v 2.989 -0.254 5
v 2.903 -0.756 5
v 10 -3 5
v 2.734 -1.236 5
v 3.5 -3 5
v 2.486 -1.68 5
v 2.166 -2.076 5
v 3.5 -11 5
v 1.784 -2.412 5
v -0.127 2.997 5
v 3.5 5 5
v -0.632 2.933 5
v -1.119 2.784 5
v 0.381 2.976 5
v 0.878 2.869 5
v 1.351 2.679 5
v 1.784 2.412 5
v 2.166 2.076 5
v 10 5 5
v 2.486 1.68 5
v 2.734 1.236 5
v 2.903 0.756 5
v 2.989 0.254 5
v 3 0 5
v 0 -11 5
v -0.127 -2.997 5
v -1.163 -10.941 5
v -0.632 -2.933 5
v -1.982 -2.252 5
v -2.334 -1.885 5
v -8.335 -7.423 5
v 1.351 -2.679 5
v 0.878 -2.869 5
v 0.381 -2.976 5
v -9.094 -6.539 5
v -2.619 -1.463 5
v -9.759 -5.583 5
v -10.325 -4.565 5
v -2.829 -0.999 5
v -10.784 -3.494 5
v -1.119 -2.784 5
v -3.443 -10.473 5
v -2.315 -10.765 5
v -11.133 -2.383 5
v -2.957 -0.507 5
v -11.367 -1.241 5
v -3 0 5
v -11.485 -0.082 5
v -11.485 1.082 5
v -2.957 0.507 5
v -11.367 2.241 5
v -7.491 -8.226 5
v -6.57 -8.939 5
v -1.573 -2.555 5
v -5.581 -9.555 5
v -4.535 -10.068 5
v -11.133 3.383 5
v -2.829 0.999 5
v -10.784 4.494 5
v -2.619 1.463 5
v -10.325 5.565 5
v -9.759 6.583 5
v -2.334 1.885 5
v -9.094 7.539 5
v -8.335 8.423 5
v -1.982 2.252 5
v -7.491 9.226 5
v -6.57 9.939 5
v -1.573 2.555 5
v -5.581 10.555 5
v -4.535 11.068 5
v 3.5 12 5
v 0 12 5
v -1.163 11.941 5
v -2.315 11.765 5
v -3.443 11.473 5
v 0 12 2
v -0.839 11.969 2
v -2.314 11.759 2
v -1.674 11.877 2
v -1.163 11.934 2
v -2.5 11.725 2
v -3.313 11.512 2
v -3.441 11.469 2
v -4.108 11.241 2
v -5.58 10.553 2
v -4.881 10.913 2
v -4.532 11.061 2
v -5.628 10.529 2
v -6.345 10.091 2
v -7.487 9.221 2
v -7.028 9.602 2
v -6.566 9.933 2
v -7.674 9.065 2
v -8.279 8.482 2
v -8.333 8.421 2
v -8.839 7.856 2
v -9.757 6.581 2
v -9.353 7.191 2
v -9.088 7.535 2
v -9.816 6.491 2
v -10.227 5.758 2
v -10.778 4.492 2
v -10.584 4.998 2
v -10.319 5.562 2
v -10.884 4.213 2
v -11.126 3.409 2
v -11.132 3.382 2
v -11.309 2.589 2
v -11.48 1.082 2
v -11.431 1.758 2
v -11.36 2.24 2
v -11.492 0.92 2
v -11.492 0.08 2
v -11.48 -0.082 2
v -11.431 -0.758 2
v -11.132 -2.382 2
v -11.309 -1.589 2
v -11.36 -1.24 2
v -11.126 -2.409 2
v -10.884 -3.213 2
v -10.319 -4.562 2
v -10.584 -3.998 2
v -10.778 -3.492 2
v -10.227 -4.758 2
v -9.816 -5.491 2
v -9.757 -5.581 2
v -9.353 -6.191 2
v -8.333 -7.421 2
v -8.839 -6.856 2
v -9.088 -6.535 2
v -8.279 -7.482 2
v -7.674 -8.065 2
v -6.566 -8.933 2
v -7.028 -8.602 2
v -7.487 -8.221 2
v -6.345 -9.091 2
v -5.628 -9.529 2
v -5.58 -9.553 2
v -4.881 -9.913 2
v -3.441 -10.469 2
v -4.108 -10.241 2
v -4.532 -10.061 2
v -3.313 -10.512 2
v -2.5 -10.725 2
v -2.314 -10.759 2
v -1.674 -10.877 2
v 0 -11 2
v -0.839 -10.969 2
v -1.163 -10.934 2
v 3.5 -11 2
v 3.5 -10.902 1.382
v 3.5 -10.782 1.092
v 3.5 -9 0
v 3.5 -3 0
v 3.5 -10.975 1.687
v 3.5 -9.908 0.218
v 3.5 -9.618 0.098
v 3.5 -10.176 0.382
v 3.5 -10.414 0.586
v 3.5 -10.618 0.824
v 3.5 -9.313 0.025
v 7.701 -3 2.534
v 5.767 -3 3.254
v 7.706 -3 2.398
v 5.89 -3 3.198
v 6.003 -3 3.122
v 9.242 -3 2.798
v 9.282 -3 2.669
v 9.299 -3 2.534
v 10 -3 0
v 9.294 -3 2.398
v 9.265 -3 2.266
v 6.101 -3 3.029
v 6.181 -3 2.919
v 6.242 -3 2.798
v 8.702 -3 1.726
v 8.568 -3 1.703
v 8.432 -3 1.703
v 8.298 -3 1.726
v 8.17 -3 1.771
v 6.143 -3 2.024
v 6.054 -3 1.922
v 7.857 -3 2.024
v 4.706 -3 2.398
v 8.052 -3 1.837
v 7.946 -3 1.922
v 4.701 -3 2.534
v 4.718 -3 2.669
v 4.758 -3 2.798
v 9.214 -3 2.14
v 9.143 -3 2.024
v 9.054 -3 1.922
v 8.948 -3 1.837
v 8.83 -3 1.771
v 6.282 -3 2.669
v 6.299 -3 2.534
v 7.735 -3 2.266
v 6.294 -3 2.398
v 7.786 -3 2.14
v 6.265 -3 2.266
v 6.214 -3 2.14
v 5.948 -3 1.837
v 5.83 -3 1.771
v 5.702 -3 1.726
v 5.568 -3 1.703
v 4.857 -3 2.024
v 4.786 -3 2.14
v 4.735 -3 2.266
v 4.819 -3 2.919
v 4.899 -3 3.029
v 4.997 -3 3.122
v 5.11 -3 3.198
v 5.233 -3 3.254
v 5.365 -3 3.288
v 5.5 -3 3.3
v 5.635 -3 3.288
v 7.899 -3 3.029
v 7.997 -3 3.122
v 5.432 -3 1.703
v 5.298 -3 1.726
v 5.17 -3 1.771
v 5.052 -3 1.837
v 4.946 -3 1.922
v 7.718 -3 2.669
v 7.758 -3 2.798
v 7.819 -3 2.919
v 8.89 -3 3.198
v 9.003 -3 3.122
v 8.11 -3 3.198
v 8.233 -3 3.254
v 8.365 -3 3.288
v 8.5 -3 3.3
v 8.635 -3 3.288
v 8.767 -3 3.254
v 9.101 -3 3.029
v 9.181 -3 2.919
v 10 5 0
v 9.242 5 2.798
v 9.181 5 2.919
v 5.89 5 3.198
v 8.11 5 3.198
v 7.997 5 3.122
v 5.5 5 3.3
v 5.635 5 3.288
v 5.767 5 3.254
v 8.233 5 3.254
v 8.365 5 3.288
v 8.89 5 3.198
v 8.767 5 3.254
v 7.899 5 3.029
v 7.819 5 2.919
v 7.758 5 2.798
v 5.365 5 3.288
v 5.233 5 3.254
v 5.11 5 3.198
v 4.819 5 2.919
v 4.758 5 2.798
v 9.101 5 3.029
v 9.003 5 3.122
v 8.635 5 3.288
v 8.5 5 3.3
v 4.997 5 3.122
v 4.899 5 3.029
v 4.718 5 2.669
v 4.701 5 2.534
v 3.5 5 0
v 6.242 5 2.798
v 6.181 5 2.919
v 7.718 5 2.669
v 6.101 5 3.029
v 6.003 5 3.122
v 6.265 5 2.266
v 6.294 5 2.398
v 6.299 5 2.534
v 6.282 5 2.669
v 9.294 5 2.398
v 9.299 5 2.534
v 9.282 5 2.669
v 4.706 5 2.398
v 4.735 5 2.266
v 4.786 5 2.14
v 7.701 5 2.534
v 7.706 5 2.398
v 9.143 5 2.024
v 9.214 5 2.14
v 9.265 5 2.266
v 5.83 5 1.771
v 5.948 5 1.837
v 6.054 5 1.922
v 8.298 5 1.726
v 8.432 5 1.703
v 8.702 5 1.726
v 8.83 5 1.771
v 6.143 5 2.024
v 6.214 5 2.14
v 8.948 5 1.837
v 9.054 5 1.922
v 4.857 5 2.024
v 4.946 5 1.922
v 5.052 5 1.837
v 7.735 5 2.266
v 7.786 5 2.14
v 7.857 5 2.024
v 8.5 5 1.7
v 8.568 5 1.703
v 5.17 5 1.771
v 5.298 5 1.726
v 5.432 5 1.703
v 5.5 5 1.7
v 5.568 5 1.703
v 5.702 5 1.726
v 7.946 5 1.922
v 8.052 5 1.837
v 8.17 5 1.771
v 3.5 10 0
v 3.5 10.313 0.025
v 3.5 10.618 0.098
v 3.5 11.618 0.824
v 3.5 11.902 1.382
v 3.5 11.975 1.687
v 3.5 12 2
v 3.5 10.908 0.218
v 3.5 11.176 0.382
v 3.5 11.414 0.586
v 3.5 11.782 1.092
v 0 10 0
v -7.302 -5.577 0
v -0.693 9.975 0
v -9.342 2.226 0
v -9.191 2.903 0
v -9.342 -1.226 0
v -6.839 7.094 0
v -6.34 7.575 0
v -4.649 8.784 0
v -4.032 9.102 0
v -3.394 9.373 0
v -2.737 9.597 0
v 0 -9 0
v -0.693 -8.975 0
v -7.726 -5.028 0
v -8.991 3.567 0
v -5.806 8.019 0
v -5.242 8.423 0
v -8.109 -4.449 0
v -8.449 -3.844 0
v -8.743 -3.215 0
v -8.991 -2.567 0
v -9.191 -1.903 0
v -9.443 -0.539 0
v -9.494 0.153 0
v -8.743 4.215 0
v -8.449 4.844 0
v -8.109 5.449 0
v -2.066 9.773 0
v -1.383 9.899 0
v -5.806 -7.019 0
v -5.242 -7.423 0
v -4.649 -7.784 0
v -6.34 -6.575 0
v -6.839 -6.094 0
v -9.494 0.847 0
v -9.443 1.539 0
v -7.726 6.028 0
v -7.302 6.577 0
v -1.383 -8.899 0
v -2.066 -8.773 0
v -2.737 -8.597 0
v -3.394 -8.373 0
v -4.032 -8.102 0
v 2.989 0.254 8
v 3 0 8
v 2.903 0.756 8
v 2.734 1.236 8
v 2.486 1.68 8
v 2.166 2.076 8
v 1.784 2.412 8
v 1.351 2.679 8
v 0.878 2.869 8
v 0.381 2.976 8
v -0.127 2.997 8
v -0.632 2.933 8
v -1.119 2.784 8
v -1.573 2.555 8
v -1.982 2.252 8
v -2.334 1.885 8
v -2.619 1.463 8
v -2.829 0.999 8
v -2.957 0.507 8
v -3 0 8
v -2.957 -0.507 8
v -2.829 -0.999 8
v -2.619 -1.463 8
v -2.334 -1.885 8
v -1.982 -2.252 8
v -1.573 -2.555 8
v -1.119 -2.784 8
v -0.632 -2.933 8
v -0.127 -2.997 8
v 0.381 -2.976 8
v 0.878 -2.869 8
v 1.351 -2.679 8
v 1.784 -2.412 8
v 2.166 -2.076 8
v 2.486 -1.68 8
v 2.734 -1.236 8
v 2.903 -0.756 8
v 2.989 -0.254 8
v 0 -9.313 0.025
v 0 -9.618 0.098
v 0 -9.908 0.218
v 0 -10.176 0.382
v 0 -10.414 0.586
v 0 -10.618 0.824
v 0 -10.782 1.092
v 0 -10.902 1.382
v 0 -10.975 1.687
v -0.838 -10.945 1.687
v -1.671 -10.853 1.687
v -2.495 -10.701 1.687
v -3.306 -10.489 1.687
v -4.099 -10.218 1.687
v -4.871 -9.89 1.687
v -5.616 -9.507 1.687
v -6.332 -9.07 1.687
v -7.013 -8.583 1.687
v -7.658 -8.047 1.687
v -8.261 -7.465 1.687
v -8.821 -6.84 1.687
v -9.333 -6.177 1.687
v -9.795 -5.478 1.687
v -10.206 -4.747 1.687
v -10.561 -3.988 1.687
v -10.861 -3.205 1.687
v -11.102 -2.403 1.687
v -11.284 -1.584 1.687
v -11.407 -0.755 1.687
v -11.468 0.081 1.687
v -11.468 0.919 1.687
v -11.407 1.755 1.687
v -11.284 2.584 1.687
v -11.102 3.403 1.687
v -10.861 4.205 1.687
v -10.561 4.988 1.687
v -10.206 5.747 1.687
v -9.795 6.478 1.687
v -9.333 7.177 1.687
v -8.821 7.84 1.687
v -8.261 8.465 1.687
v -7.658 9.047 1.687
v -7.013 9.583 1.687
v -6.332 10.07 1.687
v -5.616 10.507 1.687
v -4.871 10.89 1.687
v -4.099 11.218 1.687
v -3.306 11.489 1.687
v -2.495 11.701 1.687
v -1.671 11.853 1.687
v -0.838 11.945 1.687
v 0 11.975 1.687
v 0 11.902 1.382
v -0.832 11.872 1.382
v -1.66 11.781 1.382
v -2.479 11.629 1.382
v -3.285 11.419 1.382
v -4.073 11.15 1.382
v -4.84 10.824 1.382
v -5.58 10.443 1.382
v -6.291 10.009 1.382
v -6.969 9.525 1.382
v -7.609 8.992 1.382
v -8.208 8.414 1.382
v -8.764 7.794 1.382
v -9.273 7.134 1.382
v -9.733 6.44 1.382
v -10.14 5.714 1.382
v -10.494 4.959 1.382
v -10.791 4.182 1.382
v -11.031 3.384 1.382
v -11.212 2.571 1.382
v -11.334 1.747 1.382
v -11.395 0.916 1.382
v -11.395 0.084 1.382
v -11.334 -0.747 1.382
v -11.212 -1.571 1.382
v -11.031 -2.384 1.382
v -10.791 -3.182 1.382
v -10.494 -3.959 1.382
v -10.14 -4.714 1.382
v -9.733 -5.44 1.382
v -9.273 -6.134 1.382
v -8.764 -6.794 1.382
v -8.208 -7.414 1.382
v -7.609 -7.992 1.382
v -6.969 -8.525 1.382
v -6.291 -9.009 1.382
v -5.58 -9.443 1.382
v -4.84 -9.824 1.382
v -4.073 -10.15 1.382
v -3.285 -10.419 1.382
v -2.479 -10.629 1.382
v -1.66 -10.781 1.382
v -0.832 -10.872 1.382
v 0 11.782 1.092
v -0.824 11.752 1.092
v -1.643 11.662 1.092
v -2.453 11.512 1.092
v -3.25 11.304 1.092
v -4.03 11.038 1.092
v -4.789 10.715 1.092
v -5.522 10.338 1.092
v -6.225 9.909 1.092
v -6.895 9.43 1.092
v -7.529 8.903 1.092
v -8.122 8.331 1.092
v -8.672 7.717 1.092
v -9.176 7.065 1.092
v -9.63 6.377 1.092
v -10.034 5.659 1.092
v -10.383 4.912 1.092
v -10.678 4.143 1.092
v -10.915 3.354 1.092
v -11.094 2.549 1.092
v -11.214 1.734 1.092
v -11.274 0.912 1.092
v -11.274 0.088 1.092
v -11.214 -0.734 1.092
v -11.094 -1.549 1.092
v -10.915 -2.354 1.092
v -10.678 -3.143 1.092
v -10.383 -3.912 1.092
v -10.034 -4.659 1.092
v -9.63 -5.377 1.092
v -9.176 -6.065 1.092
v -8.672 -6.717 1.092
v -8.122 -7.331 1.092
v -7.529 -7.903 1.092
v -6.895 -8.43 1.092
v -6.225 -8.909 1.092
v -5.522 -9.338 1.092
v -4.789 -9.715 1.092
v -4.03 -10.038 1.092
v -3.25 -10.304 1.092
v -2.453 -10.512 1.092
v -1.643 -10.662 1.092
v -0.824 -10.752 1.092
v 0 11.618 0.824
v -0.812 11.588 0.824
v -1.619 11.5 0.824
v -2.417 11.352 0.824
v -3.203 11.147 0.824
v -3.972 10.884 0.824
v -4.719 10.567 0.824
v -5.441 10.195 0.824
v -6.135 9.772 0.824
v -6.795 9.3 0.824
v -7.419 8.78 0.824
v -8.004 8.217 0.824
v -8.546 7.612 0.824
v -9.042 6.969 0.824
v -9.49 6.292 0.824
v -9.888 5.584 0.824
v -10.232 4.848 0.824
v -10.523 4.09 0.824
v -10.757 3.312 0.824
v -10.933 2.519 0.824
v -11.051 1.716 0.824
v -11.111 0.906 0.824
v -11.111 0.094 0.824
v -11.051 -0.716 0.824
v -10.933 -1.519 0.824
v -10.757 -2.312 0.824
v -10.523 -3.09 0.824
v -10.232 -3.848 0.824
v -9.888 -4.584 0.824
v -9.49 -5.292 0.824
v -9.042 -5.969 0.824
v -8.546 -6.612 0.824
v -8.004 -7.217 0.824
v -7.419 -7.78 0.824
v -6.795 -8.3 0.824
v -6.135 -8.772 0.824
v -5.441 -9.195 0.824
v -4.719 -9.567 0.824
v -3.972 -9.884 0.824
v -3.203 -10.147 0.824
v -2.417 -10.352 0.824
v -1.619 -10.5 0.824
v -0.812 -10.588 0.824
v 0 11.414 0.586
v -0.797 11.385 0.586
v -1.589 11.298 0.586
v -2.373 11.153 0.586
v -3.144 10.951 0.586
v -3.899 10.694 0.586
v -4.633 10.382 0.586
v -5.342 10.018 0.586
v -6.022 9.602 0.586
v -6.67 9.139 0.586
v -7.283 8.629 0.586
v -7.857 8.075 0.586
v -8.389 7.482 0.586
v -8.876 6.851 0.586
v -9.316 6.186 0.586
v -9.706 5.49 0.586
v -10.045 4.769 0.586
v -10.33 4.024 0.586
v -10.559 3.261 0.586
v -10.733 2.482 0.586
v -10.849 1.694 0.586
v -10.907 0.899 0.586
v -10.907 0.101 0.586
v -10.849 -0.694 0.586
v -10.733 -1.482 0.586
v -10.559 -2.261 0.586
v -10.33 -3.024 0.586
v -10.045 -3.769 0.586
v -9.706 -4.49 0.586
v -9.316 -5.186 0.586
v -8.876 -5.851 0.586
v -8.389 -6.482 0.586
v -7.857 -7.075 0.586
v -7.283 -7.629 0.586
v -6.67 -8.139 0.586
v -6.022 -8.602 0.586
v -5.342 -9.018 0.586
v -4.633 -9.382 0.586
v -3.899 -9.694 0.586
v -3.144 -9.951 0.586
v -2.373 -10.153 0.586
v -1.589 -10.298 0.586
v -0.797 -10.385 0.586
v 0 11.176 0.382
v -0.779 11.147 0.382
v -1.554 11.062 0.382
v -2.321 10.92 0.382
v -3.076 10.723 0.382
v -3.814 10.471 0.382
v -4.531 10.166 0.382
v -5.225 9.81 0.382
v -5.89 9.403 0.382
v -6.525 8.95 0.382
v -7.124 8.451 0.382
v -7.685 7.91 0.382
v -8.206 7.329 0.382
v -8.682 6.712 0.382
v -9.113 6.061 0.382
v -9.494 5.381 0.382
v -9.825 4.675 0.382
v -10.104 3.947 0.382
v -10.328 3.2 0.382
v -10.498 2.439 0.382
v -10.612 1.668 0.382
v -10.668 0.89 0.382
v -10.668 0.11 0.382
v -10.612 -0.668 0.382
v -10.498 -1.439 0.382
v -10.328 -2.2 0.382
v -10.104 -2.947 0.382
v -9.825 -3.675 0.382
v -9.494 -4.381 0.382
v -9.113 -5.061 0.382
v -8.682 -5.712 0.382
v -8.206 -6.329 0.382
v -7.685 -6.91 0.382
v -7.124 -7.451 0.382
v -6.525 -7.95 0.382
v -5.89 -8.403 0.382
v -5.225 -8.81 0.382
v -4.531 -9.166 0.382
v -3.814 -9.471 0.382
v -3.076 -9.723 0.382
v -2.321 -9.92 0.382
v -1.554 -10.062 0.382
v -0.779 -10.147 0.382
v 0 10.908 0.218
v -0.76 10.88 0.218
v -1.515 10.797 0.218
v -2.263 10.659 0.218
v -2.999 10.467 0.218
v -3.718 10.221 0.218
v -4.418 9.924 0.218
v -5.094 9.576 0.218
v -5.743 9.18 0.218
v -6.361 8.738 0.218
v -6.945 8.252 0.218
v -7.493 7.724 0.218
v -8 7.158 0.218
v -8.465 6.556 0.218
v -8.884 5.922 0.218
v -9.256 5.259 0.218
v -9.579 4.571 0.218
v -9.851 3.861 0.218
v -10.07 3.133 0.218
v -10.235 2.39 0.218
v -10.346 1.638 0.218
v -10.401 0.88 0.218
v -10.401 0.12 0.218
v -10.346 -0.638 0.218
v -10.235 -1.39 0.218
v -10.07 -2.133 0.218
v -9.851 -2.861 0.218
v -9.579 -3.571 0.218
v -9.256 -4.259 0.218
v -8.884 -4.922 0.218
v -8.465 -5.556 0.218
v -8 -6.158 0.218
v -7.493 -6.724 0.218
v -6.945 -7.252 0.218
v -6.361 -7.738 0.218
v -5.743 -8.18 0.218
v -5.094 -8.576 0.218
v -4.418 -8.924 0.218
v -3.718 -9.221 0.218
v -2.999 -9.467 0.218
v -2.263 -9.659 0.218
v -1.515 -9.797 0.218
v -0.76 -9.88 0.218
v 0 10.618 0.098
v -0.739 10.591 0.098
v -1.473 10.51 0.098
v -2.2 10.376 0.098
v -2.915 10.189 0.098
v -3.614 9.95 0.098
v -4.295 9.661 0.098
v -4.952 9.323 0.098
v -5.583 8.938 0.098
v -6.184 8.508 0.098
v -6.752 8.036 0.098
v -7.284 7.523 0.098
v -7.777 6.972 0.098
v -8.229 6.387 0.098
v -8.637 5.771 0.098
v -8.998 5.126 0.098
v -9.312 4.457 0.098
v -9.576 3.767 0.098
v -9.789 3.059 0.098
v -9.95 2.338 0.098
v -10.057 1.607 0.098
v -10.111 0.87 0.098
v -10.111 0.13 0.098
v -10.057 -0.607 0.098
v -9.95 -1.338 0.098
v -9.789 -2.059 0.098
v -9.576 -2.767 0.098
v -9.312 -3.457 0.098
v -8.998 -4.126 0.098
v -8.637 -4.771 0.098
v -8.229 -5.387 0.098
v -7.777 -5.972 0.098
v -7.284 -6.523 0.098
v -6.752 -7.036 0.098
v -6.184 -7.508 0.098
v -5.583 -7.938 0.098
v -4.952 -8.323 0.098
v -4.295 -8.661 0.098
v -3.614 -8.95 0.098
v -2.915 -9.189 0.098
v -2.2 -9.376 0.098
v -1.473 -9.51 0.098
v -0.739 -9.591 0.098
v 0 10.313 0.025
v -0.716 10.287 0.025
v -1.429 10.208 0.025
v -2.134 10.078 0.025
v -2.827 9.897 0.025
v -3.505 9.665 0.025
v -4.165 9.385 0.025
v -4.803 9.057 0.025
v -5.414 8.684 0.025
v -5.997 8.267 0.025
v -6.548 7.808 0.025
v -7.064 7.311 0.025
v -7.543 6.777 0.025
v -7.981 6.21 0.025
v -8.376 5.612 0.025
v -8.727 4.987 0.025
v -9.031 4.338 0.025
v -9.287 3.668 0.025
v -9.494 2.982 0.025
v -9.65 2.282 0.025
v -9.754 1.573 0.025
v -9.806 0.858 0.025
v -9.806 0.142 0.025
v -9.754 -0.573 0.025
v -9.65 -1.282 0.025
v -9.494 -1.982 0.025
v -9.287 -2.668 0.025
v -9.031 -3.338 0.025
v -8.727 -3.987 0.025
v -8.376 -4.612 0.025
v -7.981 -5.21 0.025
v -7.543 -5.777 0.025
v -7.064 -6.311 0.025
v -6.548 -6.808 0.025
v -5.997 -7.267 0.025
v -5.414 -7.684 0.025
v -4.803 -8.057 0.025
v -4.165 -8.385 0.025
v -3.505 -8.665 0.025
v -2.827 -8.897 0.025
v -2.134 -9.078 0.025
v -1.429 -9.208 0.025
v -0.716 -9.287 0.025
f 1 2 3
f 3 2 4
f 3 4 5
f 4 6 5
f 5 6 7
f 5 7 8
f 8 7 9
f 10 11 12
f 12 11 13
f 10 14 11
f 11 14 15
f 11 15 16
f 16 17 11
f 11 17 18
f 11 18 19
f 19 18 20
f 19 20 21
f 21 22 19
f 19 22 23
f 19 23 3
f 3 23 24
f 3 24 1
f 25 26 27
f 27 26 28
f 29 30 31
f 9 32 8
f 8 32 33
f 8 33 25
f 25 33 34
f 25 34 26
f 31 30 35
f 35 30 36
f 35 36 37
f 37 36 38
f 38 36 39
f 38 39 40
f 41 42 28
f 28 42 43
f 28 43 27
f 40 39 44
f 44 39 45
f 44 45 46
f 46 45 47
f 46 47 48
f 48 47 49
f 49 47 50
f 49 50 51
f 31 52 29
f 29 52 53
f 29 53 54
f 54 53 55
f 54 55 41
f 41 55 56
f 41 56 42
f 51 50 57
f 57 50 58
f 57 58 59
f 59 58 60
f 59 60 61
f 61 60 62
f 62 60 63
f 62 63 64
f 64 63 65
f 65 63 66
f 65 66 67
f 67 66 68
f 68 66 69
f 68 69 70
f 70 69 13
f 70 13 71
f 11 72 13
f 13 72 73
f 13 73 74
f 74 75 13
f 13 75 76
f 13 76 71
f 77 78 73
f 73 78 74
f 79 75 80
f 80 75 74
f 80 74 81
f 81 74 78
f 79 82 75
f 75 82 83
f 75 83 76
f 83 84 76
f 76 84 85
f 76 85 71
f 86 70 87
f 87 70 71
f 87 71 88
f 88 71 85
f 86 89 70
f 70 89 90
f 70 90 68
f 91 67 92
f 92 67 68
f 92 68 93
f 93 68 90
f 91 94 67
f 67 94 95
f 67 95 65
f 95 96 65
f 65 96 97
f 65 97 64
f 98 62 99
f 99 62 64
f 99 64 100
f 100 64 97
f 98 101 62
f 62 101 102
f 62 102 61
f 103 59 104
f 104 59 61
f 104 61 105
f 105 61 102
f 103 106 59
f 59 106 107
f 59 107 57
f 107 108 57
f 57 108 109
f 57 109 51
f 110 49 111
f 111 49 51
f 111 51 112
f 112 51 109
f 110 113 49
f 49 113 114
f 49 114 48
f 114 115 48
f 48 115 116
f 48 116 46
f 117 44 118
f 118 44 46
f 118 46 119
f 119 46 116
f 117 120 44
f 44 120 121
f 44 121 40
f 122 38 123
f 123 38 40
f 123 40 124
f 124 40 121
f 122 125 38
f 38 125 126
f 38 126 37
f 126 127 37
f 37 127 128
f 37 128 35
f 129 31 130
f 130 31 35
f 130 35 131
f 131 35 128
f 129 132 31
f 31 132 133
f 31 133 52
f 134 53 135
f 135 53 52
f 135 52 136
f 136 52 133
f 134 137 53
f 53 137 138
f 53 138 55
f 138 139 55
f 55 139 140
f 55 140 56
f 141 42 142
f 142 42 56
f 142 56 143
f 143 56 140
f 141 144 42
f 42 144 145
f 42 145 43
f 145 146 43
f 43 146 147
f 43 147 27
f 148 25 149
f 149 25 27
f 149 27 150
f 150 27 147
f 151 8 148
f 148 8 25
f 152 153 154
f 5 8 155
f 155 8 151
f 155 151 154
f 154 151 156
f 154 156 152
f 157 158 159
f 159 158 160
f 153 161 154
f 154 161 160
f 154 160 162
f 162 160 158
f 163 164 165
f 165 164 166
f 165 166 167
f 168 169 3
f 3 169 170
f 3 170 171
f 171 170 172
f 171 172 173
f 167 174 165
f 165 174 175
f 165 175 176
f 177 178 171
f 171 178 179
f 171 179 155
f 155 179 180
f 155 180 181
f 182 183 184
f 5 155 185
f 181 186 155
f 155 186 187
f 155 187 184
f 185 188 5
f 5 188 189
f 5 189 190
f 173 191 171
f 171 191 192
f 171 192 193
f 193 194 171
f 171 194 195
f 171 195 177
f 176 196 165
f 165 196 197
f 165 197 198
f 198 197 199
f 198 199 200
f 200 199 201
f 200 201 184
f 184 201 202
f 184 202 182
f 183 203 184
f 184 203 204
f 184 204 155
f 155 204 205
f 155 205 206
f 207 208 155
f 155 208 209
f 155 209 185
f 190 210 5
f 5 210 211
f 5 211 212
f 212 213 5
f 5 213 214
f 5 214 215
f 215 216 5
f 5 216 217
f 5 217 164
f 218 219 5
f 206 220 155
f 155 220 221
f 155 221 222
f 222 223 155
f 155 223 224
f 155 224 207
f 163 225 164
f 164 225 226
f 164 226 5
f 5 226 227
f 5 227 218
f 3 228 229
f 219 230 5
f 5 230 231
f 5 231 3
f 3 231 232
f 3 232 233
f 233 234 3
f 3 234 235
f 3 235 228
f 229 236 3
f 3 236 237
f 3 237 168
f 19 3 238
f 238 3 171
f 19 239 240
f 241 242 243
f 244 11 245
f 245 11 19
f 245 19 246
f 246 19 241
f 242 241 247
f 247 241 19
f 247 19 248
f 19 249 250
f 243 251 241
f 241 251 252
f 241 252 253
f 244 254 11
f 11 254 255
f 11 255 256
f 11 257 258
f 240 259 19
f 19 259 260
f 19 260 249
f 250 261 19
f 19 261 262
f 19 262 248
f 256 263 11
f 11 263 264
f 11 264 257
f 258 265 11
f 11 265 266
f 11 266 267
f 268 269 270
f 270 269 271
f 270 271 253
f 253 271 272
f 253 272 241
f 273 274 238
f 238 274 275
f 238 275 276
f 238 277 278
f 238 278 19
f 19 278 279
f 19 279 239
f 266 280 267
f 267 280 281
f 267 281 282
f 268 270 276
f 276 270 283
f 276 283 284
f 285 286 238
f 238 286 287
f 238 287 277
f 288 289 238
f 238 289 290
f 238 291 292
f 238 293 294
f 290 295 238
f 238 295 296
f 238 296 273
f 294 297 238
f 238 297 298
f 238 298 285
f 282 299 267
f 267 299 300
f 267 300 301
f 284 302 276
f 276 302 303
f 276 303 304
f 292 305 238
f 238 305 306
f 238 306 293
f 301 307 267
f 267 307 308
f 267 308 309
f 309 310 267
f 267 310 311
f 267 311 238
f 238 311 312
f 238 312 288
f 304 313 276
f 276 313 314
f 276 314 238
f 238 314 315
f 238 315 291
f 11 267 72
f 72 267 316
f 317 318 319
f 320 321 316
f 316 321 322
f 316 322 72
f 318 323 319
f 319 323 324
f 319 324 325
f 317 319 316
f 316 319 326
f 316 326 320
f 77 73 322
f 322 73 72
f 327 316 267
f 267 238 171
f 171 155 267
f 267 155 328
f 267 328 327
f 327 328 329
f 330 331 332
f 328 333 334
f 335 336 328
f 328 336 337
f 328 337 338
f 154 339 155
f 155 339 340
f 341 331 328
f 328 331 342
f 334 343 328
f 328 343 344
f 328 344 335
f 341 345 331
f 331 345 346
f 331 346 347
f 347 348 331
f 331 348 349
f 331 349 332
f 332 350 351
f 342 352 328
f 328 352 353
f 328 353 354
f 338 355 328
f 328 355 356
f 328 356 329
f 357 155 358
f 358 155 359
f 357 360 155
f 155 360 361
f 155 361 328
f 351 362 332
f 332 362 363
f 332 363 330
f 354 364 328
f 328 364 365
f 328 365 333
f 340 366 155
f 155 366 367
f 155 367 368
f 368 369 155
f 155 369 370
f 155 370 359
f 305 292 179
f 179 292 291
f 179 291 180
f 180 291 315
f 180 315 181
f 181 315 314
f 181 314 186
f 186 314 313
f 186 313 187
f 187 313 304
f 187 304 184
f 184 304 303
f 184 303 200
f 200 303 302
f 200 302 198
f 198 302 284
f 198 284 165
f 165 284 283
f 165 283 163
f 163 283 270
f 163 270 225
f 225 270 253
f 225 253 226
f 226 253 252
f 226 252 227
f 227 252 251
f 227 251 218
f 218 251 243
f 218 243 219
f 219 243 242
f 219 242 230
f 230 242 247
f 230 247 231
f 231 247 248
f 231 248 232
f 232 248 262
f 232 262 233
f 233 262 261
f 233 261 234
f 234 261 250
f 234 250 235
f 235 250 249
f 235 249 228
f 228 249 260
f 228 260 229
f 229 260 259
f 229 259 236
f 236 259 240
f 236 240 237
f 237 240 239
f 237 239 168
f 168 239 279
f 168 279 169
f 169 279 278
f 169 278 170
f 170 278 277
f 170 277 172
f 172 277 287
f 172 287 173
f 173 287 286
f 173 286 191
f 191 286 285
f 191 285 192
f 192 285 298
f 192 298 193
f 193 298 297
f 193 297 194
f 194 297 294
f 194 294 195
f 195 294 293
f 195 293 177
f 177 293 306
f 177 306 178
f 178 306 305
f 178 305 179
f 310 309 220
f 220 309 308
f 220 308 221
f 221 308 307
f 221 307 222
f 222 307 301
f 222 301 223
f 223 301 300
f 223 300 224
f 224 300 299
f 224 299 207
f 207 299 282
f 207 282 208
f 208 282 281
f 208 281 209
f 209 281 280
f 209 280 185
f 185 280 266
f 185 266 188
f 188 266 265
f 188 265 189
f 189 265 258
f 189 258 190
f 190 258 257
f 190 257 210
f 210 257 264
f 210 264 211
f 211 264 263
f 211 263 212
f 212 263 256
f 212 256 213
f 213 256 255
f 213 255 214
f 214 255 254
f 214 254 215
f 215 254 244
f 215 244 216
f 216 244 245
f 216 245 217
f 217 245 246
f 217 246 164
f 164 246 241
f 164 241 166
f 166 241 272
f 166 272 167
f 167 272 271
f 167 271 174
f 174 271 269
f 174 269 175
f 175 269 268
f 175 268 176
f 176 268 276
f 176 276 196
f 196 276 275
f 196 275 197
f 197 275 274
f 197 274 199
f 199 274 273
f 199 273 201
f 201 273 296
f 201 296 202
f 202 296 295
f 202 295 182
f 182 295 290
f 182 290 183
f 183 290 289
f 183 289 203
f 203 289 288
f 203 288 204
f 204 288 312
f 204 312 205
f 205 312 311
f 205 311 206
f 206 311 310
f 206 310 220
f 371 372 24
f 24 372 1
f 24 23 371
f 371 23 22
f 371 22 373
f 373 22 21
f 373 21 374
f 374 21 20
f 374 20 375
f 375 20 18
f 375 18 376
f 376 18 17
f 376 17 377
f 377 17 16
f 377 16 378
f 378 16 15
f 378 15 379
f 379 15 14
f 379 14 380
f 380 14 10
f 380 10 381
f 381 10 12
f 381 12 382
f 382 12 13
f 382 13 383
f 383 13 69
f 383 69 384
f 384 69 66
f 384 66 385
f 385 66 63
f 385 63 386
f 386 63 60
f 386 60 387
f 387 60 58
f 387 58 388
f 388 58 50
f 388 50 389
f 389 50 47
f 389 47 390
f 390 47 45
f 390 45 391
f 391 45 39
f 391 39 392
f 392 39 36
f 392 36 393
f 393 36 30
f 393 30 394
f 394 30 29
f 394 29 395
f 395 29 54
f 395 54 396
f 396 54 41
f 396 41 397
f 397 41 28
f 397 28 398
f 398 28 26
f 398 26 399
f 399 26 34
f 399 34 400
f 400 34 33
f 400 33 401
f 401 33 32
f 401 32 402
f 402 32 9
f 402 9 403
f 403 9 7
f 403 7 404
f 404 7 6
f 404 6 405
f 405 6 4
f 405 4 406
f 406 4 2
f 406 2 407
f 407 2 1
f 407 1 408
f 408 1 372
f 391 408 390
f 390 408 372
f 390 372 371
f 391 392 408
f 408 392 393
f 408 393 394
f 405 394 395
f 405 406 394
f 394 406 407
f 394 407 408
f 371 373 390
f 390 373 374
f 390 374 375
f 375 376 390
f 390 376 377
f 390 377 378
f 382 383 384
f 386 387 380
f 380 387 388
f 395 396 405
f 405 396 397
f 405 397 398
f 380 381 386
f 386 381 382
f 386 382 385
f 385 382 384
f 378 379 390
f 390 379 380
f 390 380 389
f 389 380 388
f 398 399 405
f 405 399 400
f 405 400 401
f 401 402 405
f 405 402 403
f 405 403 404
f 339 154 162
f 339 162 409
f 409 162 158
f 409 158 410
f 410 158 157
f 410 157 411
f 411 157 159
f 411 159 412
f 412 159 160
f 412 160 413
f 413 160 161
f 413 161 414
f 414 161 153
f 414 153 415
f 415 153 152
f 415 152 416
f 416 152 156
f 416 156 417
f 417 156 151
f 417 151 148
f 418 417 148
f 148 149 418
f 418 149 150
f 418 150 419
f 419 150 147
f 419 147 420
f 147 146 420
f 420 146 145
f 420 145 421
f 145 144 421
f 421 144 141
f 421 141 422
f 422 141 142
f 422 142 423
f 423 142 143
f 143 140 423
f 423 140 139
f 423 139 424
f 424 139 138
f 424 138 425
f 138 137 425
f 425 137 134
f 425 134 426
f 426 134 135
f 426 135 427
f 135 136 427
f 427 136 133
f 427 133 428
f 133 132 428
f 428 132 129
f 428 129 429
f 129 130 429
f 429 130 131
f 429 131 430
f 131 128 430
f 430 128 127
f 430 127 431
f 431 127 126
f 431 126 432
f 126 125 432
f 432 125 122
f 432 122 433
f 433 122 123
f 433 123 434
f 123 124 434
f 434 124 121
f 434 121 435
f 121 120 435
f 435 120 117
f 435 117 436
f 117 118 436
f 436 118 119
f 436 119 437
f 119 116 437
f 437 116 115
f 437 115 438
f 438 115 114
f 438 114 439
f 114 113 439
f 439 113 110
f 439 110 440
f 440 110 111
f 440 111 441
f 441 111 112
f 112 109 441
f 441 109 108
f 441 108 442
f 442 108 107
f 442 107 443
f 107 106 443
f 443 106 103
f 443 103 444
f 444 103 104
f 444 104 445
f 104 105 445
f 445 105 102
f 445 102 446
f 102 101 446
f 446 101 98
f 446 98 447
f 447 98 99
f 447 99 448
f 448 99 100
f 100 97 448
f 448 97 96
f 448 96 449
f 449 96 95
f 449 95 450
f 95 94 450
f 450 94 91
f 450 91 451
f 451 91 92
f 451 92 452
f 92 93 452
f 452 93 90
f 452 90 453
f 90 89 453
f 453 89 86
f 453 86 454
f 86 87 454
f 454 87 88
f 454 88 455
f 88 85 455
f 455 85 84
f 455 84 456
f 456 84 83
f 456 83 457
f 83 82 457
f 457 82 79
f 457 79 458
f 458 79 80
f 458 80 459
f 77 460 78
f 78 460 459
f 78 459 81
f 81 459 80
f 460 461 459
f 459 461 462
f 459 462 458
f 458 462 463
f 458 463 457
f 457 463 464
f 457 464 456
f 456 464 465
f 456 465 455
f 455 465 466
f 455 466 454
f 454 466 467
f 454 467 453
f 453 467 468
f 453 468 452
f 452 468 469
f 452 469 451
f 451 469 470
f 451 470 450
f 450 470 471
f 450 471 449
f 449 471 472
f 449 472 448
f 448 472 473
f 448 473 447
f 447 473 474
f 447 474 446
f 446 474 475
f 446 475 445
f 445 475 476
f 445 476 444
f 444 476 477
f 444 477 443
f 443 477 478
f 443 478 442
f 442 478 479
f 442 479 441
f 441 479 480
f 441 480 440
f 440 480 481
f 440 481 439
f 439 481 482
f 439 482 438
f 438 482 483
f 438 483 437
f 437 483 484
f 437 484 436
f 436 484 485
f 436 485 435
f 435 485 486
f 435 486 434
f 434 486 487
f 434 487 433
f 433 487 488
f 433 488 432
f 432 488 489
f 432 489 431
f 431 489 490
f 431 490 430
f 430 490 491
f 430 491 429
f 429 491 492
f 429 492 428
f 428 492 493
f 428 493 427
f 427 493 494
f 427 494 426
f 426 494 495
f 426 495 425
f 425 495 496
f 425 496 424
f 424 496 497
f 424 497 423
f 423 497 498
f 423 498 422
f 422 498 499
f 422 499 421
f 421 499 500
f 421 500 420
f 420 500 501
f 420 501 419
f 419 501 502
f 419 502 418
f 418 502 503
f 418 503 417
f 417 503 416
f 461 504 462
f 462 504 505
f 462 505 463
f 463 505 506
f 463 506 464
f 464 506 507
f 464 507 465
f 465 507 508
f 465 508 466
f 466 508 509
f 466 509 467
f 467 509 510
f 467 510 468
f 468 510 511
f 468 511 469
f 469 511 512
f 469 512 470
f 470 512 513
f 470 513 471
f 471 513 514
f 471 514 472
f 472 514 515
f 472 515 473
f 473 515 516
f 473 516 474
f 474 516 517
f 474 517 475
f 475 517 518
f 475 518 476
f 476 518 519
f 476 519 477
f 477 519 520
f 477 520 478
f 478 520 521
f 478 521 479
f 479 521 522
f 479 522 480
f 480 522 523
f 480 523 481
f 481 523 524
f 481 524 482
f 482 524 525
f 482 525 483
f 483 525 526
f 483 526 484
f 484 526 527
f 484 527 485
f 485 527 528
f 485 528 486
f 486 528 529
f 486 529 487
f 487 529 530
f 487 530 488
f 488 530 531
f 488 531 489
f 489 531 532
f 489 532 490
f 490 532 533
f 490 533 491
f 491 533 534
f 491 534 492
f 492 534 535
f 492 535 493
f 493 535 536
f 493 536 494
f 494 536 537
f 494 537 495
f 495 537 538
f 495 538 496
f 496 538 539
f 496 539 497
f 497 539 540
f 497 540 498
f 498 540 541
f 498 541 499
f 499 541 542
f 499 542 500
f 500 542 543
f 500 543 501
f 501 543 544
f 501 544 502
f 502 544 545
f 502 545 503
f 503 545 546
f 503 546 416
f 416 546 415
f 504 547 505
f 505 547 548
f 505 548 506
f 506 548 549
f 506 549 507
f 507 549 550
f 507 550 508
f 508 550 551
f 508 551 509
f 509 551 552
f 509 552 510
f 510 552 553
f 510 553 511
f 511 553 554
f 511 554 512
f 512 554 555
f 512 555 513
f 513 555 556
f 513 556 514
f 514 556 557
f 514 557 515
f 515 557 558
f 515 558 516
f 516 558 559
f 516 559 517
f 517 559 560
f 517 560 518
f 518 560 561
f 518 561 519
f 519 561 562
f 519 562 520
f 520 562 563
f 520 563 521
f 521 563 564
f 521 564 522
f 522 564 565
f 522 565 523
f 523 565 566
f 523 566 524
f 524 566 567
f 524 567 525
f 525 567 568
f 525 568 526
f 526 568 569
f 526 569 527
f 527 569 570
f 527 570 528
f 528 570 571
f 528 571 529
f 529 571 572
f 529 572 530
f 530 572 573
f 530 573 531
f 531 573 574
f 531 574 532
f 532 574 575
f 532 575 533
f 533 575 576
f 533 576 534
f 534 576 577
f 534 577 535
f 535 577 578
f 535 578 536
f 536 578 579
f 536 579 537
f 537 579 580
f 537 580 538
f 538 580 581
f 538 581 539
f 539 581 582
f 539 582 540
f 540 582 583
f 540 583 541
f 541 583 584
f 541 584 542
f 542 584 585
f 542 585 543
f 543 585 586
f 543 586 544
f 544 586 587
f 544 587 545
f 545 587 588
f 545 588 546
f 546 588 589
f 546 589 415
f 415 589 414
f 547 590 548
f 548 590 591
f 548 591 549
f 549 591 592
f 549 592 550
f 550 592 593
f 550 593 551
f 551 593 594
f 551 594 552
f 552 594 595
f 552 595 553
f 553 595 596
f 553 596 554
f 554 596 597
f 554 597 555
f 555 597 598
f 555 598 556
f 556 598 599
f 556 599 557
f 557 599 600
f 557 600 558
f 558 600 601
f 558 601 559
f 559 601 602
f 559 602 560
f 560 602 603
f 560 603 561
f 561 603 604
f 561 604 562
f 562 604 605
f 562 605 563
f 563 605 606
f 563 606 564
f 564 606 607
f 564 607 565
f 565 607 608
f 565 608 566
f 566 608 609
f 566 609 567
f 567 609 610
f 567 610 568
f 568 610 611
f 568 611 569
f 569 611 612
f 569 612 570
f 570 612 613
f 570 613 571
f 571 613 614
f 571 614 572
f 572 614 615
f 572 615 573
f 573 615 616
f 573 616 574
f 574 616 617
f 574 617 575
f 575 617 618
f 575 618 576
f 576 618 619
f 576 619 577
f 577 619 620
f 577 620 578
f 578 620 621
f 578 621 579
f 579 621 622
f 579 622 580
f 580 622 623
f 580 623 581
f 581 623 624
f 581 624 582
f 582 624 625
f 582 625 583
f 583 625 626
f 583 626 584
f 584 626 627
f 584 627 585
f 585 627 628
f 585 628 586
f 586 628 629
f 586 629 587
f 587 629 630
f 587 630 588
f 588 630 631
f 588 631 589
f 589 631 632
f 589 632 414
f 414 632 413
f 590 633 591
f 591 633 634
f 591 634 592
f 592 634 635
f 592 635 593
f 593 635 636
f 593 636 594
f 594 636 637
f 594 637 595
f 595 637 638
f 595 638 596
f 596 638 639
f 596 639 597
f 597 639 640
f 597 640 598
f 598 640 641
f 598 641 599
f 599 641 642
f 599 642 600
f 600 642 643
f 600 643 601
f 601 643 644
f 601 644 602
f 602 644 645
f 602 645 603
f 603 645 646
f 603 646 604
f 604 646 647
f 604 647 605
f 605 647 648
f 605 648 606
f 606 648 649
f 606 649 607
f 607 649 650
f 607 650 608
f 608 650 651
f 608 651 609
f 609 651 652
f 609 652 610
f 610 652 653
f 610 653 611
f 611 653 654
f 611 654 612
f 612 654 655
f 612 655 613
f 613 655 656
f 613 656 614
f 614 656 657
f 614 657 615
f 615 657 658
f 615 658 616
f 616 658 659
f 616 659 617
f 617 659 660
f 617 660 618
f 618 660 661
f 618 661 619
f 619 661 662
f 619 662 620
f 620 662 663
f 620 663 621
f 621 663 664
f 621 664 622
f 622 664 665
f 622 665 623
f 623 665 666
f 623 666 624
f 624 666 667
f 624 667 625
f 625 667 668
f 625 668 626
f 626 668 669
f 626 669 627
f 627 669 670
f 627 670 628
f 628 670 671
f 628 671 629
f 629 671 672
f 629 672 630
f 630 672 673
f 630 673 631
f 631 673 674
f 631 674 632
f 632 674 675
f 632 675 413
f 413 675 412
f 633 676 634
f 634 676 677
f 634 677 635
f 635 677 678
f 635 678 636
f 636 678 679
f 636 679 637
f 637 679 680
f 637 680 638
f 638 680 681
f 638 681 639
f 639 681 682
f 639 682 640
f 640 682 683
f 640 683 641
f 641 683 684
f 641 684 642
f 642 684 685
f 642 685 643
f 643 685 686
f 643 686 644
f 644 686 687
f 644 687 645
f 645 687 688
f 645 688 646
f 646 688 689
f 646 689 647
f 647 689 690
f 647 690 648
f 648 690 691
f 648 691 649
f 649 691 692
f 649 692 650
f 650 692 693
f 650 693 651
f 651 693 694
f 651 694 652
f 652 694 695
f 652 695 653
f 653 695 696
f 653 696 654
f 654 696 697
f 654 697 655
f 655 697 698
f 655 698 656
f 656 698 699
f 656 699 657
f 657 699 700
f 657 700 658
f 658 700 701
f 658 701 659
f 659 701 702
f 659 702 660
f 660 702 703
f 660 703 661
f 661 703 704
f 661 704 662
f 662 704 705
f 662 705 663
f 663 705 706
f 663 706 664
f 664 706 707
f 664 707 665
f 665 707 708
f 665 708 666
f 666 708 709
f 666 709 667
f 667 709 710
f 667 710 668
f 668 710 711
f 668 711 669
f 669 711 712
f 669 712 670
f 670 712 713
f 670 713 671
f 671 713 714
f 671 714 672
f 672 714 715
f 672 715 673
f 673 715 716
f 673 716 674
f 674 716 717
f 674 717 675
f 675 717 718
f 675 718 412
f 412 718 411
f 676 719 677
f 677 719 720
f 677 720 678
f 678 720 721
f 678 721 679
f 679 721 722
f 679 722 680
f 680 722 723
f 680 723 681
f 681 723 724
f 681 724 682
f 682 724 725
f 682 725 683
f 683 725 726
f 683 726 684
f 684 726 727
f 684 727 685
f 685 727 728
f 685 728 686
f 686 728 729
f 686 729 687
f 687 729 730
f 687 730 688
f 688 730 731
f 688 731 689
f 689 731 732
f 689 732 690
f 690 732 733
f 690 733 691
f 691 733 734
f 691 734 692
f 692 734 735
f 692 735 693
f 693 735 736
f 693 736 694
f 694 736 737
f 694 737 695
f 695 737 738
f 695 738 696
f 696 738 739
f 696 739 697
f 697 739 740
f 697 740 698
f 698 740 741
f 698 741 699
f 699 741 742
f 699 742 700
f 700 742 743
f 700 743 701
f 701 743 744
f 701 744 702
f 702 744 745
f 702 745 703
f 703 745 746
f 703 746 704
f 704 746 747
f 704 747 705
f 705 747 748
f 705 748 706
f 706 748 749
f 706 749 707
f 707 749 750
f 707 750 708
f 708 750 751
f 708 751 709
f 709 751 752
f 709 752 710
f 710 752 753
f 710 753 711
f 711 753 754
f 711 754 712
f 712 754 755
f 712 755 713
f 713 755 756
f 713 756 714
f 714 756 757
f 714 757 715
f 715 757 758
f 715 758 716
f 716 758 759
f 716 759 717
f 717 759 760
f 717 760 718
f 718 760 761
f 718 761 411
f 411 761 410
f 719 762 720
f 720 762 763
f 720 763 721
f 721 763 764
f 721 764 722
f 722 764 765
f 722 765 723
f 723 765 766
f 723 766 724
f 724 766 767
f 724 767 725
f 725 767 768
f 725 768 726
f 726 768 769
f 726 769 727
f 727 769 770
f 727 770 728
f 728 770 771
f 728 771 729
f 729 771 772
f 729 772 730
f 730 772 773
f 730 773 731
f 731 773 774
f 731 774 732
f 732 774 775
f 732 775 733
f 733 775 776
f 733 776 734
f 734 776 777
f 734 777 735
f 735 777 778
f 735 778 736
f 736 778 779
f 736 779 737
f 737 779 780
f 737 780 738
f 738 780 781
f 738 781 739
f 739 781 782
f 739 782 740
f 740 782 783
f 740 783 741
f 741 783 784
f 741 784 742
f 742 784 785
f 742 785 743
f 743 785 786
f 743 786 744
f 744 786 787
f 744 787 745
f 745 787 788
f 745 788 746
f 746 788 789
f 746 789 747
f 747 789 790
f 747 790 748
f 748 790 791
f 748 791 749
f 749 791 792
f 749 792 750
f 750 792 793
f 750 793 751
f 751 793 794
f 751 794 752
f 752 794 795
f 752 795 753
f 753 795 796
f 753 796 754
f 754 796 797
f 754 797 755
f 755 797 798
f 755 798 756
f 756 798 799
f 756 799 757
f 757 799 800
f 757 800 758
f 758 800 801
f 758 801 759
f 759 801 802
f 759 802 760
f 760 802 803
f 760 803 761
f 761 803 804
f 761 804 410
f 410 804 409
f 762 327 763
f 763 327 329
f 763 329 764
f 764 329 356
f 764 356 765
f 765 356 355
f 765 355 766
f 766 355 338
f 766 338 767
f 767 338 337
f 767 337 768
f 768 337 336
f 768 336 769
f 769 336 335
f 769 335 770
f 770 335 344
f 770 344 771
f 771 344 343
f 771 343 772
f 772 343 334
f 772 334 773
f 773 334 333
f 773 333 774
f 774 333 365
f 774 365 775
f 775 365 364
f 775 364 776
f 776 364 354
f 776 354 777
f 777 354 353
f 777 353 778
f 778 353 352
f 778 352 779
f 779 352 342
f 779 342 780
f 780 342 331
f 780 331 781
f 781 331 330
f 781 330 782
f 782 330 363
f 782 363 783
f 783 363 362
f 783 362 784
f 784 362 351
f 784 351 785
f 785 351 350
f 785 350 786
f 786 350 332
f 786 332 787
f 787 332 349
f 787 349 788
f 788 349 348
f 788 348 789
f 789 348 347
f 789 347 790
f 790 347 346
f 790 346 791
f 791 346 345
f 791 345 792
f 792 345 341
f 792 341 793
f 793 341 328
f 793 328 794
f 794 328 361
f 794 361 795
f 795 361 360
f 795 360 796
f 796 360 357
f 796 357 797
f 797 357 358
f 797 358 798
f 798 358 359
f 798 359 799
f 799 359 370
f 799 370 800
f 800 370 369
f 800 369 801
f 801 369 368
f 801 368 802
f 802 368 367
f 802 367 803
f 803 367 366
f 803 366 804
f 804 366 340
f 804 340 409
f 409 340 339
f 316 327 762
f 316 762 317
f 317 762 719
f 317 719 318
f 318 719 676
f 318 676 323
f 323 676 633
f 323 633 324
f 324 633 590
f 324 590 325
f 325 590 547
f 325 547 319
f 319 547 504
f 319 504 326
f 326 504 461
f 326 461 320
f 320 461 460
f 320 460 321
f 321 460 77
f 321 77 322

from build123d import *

# Parameters (mm, degrees)
BOSS_EXTRUDE1_DEPTH = 5
CUT_EXTRUDE1_START  = 11
SKETCH2_R           = 0.8
CUT_EXTRUDE1_DEPTH  = 23
BOSS_EXTRUDE2_START = 5
SKETCH4_R           = 3
BOSS_EXTRUDE2_DEPTH = 3
FILLET1_R           = 2


with BuildPart() as part:
    # Sketch1 → Boss-Extrude1 (new body)
    with BuildSketch(Plane.XY):
        with BuildLine():
            Line((3.5, 12), (3.5, 5))
            Line((3.5, 5), (10, 5))
            Line((10, 5), (10, -3))
            Line((10, -3), (3.5, -3))
            Line((3.5, -3), (3.5, -11))
            Line((3.5, -11), (0, -11))
            ThreePointArc((0, -11), (-11.5, 0.5), (0, 12))
            Line((0, 12), (3.5, 12))
        make_face()
    extrude(amount=BOSS_EXTRUDE1_DEPTH)

    # Sketch2 → Cut-Extrude1 (cut, through all)
    with BuildSketch(Plane(origin=(0, 0, 0), x_dir=(1, 0, 0), z_dir=(0, 1, 0)).offset(CUT_EXTRUDE1_START)):
        with Locations((8.5, -2.5)):
            Circle(SKETCH2_R)
        with Locations((5.5, -2.5)):
            Circle(SKETCH2_R)
    extrude(amount=-CUT_EXTRUDE1_DEPTH, mode=Mode.SUBTRACT)

    # Sketch4 → Boss-Extrude2 (add)
    with BuildSketch(Plane.XY.offset(BOSS_EXTRUDE2_START)):
        Circle(SKETCH4_R)
    extrude(amount=BOSS_EXTRUDE2_DEPTH)

    # Fillet1
    fillet1_edges = [part.edges().sort_by_distance(p)[0] for p in [
        (1.75, -11, 0),
        (-11.5, 0.5, 0),
        (1.75, 12, 0),
    ]]
    fillet(fillet1_edges, radius=FILLET1_R)


solid = part.part
